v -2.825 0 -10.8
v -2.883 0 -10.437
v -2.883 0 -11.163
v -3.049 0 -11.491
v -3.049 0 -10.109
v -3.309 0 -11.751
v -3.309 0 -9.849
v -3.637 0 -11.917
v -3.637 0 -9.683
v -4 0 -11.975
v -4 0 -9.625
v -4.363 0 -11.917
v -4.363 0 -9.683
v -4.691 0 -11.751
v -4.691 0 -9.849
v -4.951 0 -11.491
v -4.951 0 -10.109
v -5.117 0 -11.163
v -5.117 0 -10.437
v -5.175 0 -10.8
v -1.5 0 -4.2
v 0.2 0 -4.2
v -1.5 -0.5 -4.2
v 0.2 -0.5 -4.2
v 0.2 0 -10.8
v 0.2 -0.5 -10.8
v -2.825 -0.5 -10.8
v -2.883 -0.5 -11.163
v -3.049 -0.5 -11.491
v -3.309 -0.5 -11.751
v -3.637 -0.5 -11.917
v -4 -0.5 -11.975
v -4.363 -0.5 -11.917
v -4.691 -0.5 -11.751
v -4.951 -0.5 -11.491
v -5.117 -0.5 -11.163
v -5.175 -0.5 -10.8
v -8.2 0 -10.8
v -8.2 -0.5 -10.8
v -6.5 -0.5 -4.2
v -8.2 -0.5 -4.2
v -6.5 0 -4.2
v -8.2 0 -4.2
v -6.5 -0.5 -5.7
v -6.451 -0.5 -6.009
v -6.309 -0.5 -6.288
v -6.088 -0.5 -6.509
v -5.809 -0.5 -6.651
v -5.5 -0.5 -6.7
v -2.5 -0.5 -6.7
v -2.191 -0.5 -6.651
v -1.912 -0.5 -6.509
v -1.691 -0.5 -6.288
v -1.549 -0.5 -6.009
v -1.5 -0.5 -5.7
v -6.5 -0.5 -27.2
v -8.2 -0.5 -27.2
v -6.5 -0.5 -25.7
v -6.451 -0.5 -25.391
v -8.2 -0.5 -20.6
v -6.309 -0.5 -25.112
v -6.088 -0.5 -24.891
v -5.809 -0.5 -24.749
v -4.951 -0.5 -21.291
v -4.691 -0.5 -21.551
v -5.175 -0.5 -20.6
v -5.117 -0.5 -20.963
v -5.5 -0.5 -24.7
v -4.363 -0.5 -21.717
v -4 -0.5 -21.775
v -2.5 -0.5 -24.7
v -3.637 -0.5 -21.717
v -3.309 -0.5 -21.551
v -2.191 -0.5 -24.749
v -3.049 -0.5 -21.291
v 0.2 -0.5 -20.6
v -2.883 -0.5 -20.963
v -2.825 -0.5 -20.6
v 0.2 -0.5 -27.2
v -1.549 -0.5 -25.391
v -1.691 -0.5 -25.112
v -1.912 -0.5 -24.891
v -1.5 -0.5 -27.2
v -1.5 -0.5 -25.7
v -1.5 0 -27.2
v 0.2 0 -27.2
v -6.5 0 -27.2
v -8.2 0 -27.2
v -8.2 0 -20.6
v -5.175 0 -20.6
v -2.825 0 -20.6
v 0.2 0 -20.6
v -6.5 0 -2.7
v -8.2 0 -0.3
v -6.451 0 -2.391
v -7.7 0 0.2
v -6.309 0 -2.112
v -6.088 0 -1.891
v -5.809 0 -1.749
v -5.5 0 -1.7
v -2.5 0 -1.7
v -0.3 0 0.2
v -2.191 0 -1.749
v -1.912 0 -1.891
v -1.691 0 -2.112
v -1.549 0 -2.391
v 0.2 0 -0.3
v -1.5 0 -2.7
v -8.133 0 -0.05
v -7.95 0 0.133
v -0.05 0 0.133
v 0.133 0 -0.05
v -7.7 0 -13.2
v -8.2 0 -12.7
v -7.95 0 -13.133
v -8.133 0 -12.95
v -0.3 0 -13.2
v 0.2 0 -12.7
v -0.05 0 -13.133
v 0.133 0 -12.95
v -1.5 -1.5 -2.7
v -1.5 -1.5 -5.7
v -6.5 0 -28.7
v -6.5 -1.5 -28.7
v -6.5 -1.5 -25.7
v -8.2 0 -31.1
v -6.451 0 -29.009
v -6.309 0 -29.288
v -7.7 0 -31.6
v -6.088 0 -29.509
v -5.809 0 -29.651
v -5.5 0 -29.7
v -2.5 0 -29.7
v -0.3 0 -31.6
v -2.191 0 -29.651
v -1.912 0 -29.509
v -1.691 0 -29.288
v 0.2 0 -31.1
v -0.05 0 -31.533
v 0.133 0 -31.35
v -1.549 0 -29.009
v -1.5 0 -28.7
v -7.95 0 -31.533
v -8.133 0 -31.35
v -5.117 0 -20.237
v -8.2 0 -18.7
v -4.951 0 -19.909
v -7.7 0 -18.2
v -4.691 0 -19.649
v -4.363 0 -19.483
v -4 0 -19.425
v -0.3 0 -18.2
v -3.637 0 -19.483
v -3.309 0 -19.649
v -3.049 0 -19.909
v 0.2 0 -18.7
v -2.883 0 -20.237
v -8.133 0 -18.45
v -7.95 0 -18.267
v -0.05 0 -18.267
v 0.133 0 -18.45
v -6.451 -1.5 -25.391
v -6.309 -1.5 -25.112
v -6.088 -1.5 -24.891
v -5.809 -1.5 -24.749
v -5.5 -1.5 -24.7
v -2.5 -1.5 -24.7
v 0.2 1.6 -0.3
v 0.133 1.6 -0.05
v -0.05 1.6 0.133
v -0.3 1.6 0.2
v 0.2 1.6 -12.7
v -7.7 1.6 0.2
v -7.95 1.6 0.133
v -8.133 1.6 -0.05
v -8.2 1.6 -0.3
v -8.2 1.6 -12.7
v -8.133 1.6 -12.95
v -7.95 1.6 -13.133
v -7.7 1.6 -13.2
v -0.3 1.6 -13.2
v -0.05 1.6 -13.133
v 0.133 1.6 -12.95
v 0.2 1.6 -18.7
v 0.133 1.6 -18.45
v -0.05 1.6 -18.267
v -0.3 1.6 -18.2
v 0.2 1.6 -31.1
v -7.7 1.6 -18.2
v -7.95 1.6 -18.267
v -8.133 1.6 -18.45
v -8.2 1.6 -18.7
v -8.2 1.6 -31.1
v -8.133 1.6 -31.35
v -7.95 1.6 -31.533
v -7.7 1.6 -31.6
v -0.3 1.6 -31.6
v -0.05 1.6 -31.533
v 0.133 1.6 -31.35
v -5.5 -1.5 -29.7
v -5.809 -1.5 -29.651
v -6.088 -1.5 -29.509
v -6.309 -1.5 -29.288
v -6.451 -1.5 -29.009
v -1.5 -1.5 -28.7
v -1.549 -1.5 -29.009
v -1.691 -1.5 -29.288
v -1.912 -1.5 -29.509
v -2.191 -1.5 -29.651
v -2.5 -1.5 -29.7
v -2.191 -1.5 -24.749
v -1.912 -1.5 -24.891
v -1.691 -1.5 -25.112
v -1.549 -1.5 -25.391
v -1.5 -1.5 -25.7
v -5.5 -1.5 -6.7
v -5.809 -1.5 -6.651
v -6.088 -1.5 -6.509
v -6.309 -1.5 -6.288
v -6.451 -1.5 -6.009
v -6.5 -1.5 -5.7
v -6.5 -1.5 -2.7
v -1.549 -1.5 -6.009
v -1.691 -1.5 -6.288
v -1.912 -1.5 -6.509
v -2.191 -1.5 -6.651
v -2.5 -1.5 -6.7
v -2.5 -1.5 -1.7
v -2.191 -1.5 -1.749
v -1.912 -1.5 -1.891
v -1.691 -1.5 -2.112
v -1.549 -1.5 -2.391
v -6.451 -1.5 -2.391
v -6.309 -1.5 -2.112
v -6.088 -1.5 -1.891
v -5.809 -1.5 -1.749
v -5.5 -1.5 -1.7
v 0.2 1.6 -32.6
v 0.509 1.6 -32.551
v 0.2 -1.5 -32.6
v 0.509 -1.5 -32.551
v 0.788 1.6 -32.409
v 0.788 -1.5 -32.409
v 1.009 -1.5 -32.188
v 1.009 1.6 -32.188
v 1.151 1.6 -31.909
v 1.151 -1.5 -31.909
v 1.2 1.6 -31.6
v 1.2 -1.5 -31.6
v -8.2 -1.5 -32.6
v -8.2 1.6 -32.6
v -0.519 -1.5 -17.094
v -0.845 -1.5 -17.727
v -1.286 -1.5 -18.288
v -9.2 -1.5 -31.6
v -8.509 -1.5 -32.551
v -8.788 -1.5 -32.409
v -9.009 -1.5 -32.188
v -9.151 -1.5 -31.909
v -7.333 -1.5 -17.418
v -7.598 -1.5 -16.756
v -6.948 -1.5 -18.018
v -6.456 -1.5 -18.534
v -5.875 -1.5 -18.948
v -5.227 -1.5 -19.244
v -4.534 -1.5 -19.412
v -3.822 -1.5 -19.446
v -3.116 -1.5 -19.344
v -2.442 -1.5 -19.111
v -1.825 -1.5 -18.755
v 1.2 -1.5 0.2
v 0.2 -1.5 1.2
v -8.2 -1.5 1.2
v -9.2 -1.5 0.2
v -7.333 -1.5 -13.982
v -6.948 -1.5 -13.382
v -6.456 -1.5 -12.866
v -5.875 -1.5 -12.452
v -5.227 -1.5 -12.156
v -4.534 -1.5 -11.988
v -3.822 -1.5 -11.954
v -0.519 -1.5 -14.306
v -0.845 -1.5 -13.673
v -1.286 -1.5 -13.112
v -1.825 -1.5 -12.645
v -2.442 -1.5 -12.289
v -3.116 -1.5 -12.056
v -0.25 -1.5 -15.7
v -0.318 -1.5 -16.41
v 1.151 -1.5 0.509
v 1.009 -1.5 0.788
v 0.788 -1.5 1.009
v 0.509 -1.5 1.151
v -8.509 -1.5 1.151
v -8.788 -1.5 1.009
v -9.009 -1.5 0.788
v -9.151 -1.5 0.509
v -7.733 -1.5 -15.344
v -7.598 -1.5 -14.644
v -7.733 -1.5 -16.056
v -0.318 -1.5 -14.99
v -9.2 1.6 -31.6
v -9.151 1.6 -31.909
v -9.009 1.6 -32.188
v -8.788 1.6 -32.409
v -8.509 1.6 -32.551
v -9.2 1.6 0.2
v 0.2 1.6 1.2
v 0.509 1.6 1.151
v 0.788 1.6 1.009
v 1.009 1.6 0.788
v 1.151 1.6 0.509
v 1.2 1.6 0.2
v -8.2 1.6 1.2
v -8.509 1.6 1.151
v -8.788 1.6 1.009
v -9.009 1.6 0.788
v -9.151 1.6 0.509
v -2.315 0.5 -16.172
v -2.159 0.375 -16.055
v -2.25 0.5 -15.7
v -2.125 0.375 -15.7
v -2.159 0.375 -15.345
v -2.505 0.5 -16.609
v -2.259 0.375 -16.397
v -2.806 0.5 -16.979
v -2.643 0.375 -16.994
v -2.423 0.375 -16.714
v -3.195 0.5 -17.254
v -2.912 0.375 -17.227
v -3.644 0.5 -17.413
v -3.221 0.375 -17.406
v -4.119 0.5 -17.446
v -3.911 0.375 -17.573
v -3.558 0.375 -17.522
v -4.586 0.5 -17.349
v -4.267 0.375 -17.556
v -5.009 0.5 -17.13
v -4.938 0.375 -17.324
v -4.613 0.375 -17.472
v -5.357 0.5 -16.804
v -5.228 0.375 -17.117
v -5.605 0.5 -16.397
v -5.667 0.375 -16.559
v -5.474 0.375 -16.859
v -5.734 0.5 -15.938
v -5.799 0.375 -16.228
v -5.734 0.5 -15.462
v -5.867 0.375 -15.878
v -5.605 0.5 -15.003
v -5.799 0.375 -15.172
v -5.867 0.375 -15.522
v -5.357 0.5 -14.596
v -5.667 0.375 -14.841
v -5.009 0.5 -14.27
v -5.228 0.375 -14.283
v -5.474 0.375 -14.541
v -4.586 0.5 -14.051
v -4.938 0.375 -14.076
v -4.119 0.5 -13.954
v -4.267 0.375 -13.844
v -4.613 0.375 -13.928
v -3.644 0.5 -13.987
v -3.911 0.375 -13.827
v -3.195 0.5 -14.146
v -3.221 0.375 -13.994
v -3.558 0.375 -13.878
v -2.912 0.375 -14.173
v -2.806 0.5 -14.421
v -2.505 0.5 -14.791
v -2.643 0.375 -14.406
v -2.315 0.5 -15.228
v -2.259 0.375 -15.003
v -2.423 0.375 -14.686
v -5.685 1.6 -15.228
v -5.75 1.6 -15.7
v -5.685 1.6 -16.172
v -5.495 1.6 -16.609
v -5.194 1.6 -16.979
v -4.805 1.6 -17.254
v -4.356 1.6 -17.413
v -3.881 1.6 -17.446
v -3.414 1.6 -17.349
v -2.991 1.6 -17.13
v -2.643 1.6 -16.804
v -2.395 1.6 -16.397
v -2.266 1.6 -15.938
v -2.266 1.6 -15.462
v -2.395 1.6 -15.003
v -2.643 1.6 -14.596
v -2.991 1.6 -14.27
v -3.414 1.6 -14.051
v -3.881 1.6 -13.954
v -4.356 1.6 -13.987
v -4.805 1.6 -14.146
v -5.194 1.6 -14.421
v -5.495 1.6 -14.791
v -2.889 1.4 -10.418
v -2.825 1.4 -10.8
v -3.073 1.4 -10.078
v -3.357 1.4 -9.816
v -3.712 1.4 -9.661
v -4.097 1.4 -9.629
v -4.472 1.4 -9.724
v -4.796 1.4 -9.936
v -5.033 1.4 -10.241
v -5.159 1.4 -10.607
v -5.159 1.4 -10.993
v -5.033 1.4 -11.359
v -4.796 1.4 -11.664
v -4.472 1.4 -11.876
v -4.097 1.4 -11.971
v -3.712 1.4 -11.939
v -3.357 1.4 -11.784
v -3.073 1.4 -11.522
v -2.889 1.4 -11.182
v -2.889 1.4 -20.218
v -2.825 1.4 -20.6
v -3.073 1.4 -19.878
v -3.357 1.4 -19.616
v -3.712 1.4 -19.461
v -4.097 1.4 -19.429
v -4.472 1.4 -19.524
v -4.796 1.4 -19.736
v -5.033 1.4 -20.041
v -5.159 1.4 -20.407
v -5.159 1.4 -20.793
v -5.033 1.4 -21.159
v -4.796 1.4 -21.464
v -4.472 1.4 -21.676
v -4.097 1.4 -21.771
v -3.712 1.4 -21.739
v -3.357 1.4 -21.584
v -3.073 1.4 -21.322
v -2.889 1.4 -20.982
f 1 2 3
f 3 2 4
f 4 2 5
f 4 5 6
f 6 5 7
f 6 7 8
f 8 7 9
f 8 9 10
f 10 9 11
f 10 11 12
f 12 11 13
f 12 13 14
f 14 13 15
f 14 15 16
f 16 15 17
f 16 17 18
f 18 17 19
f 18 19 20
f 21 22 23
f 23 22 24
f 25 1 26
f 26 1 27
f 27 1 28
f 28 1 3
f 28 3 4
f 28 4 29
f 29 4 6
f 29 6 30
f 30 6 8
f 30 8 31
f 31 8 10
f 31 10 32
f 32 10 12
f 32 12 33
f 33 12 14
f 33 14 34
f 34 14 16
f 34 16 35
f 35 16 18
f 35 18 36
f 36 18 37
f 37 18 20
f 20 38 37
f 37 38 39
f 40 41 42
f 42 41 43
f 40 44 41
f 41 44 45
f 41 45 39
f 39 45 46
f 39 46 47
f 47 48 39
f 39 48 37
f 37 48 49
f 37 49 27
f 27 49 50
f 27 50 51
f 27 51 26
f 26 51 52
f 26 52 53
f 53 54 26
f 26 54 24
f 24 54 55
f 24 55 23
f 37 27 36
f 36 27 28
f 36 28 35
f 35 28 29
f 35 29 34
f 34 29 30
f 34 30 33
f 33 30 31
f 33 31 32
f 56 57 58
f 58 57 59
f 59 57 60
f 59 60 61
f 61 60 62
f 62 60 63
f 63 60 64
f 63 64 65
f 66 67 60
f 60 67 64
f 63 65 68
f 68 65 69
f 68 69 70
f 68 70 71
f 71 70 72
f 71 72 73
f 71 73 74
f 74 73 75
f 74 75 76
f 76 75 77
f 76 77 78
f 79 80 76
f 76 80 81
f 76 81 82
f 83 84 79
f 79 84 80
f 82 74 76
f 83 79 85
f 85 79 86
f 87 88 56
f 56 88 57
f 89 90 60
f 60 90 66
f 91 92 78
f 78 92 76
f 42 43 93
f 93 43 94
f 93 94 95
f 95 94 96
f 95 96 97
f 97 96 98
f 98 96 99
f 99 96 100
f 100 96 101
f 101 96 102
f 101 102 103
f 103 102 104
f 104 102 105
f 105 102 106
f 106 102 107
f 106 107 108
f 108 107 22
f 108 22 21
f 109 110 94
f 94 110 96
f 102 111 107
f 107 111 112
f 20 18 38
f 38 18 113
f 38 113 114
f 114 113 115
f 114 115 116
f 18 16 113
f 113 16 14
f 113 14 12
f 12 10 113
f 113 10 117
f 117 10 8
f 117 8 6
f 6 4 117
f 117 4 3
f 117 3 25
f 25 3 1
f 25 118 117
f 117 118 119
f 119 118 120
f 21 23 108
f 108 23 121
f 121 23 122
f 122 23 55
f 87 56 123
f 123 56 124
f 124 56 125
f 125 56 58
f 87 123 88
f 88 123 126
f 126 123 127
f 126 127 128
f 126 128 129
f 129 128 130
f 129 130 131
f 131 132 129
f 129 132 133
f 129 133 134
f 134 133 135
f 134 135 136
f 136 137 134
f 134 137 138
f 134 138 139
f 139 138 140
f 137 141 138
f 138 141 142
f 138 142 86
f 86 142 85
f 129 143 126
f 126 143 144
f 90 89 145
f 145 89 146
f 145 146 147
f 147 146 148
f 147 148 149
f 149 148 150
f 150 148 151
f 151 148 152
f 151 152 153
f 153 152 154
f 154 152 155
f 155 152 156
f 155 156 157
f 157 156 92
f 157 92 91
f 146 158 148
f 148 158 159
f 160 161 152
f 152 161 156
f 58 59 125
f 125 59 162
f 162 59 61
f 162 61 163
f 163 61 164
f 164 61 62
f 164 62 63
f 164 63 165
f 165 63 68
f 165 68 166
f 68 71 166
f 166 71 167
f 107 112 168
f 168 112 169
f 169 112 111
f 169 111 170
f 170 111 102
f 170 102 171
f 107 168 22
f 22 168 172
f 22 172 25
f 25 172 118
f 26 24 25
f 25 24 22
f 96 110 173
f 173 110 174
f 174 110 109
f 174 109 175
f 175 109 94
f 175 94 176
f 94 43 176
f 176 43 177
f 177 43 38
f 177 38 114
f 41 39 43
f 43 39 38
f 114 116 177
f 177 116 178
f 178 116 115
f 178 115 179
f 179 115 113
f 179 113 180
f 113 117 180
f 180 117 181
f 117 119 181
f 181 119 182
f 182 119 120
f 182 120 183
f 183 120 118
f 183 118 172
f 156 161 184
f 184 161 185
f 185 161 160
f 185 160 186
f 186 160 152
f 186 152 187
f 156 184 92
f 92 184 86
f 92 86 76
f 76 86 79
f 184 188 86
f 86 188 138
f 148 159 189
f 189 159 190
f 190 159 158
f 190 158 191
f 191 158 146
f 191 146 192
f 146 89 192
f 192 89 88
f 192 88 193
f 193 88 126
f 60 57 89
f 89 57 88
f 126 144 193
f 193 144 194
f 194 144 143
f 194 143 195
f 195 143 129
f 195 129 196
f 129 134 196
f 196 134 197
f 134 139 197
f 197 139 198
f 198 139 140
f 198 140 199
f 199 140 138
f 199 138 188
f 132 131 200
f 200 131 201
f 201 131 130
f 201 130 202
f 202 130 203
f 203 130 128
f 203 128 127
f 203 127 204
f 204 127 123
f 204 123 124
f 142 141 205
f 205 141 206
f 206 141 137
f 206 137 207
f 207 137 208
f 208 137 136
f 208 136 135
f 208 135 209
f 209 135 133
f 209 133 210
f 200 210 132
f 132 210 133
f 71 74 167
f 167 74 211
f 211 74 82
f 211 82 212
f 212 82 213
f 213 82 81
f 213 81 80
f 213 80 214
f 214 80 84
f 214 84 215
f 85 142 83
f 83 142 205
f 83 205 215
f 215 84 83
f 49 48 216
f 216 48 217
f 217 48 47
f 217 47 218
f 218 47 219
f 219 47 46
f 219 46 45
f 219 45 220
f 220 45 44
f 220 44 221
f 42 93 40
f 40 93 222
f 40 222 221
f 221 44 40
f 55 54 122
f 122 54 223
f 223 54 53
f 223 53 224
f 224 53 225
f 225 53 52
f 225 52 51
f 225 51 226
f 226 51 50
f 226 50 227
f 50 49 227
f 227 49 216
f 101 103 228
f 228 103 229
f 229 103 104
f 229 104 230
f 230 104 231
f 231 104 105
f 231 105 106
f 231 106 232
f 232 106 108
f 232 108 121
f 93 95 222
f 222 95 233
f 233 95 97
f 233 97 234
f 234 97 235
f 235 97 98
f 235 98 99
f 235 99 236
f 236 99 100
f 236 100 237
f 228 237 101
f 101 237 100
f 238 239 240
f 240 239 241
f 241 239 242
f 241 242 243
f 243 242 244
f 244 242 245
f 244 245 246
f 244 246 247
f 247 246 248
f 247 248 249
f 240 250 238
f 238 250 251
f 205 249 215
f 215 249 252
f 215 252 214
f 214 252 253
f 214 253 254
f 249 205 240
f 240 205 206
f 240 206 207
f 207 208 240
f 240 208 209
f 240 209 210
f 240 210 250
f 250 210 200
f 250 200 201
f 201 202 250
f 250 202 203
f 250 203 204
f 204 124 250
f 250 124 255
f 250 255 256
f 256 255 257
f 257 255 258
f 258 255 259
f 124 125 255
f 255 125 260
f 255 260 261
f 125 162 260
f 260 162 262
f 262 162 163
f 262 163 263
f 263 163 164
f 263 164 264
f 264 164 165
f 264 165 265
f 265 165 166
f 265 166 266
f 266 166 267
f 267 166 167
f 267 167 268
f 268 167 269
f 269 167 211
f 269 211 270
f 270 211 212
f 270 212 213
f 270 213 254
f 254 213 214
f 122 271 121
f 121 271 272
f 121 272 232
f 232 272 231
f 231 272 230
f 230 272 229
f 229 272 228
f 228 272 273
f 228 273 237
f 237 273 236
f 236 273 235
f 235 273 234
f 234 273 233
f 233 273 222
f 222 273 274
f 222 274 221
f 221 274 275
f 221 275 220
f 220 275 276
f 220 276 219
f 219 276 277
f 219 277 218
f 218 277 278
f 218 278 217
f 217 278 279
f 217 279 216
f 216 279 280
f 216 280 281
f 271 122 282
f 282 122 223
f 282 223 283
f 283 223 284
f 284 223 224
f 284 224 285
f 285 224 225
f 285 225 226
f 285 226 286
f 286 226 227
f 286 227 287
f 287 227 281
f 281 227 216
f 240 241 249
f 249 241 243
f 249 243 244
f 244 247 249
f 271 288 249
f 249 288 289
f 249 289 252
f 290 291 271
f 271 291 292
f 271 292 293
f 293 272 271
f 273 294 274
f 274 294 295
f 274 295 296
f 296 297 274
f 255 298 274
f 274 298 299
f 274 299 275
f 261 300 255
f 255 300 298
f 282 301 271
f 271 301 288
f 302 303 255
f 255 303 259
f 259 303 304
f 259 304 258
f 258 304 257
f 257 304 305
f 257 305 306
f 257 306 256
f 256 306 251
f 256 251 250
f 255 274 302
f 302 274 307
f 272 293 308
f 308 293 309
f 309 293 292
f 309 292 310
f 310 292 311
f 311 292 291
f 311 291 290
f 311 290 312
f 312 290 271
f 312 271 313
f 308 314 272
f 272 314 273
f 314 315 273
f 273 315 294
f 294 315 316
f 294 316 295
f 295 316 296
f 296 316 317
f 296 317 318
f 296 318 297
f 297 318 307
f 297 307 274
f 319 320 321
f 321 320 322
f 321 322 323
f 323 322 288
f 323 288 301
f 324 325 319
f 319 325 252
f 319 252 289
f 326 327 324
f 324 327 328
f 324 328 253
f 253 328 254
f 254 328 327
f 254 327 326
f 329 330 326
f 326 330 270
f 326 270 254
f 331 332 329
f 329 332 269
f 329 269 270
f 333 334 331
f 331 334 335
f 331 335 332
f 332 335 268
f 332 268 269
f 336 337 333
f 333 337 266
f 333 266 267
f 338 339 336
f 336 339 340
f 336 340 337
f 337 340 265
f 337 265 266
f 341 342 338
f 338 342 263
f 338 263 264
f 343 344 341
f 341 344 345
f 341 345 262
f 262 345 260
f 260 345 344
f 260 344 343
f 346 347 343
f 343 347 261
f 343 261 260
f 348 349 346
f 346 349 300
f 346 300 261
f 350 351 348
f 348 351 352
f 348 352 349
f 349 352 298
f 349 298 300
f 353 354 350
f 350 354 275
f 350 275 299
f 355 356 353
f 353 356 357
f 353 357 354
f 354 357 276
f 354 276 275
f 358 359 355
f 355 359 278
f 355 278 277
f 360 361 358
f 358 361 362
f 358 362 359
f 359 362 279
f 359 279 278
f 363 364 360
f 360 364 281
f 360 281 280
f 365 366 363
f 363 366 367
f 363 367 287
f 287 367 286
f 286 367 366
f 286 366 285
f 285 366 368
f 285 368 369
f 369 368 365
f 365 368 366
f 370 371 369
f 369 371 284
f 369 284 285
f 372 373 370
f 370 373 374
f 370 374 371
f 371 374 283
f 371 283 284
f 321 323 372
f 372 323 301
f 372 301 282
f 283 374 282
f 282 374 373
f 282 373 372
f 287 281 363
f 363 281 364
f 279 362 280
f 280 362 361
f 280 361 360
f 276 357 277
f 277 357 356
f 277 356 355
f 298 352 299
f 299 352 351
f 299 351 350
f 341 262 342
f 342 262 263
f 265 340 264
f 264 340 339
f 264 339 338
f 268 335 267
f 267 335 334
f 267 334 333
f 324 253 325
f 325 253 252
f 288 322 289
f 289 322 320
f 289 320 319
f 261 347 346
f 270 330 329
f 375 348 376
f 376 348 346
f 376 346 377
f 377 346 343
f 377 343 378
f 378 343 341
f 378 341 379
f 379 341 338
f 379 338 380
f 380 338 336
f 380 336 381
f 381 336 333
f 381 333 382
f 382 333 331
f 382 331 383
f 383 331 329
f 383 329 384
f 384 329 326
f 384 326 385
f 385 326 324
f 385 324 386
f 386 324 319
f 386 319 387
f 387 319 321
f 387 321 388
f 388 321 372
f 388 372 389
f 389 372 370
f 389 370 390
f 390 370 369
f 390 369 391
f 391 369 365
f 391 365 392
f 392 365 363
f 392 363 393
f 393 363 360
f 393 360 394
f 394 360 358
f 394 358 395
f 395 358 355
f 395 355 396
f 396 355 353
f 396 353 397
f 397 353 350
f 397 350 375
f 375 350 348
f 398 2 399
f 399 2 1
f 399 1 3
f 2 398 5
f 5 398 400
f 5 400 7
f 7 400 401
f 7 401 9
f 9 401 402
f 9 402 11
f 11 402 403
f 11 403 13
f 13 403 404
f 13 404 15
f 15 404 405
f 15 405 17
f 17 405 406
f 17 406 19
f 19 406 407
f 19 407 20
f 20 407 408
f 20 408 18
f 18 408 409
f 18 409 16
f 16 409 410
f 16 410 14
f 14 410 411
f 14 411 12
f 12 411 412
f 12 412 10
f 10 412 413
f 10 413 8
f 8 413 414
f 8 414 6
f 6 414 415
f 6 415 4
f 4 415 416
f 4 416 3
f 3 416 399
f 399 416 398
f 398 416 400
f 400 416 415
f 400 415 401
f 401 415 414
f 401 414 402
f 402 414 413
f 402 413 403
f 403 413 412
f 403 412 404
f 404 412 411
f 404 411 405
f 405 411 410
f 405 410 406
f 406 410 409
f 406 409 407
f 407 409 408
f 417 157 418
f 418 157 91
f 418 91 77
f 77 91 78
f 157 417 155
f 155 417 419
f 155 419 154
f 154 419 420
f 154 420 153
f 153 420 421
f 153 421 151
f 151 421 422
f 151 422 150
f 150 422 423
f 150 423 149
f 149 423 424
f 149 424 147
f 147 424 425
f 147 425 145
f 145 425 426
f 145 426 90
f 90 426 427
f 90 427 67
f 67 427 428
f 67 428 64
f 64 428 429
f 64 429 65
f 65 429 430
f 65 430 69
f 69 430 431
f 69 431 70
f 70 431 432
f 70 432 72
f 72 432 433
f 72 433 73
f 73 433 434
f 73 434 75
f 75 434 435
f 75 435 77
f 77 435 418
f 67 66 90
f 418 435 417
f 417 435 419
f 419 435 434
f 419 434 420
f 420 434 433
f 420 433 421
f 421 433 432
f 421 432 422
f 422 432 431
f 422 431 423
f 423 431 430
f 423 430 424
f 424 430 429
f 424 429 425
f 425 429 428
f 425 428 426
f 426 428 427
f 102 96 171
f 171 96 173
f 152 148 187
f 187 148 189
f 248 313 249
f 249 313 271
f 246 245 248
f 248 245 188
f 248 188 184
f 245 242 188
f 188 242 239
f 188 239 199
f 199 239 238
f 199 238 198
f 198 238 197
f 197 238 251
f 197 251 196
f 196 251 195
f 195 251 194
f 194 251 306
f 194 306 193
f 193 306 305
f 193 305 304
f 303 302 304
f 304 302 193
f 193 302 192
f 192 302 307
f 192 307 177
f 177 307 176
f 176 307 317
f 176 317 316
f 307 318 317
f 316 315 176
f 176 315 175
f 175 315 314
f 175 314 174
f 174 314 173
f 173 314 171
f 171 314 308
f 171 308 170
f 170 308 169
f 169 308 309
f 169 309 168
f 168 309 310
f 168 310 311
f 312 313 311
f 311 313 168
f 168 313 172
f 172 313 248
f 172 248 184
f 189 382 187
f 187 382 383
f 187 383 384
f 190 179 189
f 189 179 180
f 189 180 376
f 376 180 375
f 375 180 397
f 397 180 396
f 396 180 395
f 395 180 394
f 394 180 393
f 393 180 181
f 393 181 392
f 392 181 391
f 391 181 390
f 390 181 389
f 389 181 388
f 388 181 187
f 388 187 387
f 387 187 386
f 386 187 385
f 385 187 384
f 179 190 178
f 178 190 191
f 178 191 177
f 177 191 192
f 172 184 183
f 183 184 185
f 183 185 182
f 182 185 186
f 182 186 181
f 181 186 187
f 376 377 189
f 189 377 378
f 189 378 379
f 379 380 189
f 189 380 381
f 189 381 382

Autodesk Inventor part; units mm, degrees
ref_plane "YZ Plane" through (0, 0, 0) normal (1, 0, 0) x (0, 1, 0)
ref_plane "XZ Plane" through (0, 0, 0) normal (0, 1, 0) x (-1, 0, 0)
ref_plane "XY Plane" through (0, 0, 0) normal (0, 0, 1) x (1, 0, 0)
sketch "Sketch1" plane through (0, 0, 0) normal (0, 1, 0) x (-1, 0, 0)
  line L0 (0, 0) -> (8, 0)
  line L1 (8, 0) -> (8, -13)
  line L2 (8, -13) -> (0, -13)
  line L3 (0, -13) -> (0, 0)
  line L4 (8.2, -13.2) -> (8.2, 0.2)
  line L5 (8.2, 0.2) -> (-0.2, 0.2)
  line L6 (-0.2, 0.2) -> (-0.2, -13.2)
  line L7 (-0.2, -13.2) -> (8.2, -13.2)
  line L8 (0, -18.4) -> (8, -18.4)
  line L9 (8, -18.4) -> (8, -31.4)
  line L10 (8, -31.4) -> (0, -31.4)
  line L11 (0, -31.4) -> (0, -18.4)
  line L12 (8.2, -31.6) -> (8.2, -18.2)
  line L13 (8.2, -18.2) -> (-0.2, -18.2)
  line L14 (-0.2, -18.2) -> (-0.2, -31.6)
  line L15 (-0.2, -31.6) -> (8.2, -31.6)
  line L16 (9.2, 1.2) -> (-1.2, 1.2)
  line L17 (-1.2, 1.2) -> (-1.2, -32.6)
  line L18 (-1.2, -32.6) -> (9.2, -32.6)
  line L19 (9.2, -32.6) -> (9.2, 1.2)
  circle A0 centre (4, -15.7) radius 1.75
  line L20 (4, -18.2) -> (4, -13.2)
  dimension "d0" = 8
  dimension "d1" = 13
  dimension "d2" = 0.2
  dimension "d3" = 0.2
  dimension "d4" = 3.5
  dimension "d5" = 2.5
  dimension "d6" = 2.5
  dimension "d7" = 1
  dimension "d8" = 1
  dimension "d9" = 1
  dimension "d10" = 1
extrude "Extrusion1" add sketch "Sketch1" along normal blind 1.6 contours L19 L18 L17 L16
sketch "Sketch2" plane through (0, 0, 0) normal (0, -1, 0) x (1, 0, 0)
  line L0 (-9.2, 1.2) -> (1.2, 1.2) projected
  line L1 (1.2, -32.6) -> (-9.2, -32.6) projected
  line L2 (1.2, 1.2) -> (-9.2, 1.2)
  line L3 (-9.2, 1.2) -> (-9.2, -32.6)
  line L4 (-9.2, -32.6) -> (1.2, -32.6)
  line L5 (1.2, -32.6) -> (1.2, 1.2)
  circle A0 centre (-4, -15.7) radius 1.75 projected
  circle A1 centre (-4, -15.7) radius 1.75
  line L6 (-1.5, -24.7) -> (-6.5, -24.7)
  line L7 (-6.5, -24.7) -> (-6.5, -29.7)
  line L8 (-6.5, -29.7) -> (-1.5, -29.7)
  line L9 (-1.5, -29.7) -> (-1.5, -24.7)
  line L10 (-1.5, -1.7) -> (-6.5, -1.7)
  line L11 (-6.5, -1.7) -> (-6.5, -6.7)
  line L12 (-6.5, -6.7) -> (-1.5, -6.7)
  line L13 (-1.5, -6.7) -> (-1.5, -1.7)
  line L14 (-8.2, -18.2) -> (-8.2, -31.6) projected
  line L15 (-8.2, -31.6) -> (0.2, -31.6) projected
  line L16 (0.2, -18.2) -> (-8.2, -18.2) projected
  line L17 (-4, -18.2) -> (-4, -23.5281)
  line L18 (-8.2, -13.2) -> (0.2, -13.2) projected
  line L19 (0.2, 0.2) -> (-8.2, 0.2) projected
  point P0 (0, 0)
  dimension "d14" = 5
  dimension "d15" = 1.9
  dimension "d16" = 5
  dimension "d39" = 1.9
extrude "Extrusion2" add sketch "Sketch2" along normal blind 1.5
sketch "Sketch3" plane through (0, 0, 0) normal (0, 1, 0) x (1, 0, 0)
  circle A0 centre (-4, 10.8) radius 1.175
  circle A1 centre (-4, 20.6) radius 1.175
  line L0 (0.2, 18.2) -> (-8.2, 18.2) projected
  circle A2 centre (-4, 15.7) radius 1.75 projected
  line L1 (0.2, -0.2) -> (-8.2, -0.2) projected
  line L2 (-6.5, 24.7) -> (-1.5, 24.7) projected
  line L3 (-6.5, 1.7) -> (-1.5, 1.7) projected
  line L4 (-1.5, 6.7) -> (-6.5, 6.7) projected
  point P0 (0, 0)
  dimension "d22" = 2.35
  dimension "d37" = 4.1
  dimension "d40" = 4.1
extrude "Extrusion3" add sketch "Sketch3" along normal blind 1.4 contours A0 | A1
chamfer "Chamfer1" distance 2 angle 45 1 edges at (-5.75, -1.5, -15.7)
fillet "Fillet1" radius 1 4 edges at (-9.2, 0.05, 1.2) (1.2, 0.05, 1.2) (-9.2, 0.05, -32.6) (1.2, 0.05, -32.6)
fillet "Fillet2" radius 1 8 edges at (-6.5, -0.75, -1.7) (-1.5, -0.75, -1.7) (-1.5, -0.75, -6.7) (-6.5, -0.75, -6.7) (-6.5, -0.75, -24.7) (-1.5, -0.75, -24.7) (-1.5, -0.75, -29.7) (-6.5, -0.75, -29.7)
fillet "Fillet3" radius 0.5 8 edges at (0.2, 0.8, -31.6) (-8.2, 0.8, -31.6) (-8.2, 0.8, -18.2) (0.2, 0.8, -18.2) (0.2, 0.8, -13.2) (-8.2, 0.8, -13.2) (-8.2, 0.8, 0.2) (0.2, 0.8, 0.2)
sketch "Sketch4" plane through (0, 0, 0) normal (0, 1, 0) x (1, 0, 0)
  line L0 (-8.2, 27.2) -> (0.2, 27.2)
  line L1 (0.2, 27.2) -> (0.2, 20.6)
  line L2 (0.2, 20.6) -> (-8.2, 20.6)
  line L3 (-8.2, 20.6) -> (-8.2, 27.2)
  line L4 (-8.2, 4.2) -> (0.2, 4.2)
  line L5 (0.2, 4.2) -> (0.2, 10.8)
  line L6 (0.2, 10.8) -> (-8.2, 10.8)
  line L7 (-8.2, 10.8) -> (-8.2, 4.2)
  line L8 (-8.2, 18.7) -> (-8.2, 31.1) projected
  line L9 (0.2, 31.1) -> (0.2, 18.7) projected
  line L10 (-5.5, 24.7) -> (-2.5, 24.7) projected
  circle A0 centre (-4, 20.6) radius 1.175 projected
  circle A1 centre (-4, 10.8) radius 1.175 projected
  line L11 (-5.5, 1.7) -> (-2.5, 1.7) projected
  line L12 (-1.5, 25.7) -> (-1.5, 28.7) projected
  line L13 (-1.5, 2.7) -> (-1.5, 5.7) projected
  point P0 (0, 0)
  point P1 (-5.175, 10.8)
  point P2 (-2.825, 10.8)
  point P3 (-5.175, 20.6)
  point P4 (-2.825, 20.6)
  point P5 (-1.5, 27.2)
  point P6 (-1.5, 4.2)
extrude "Extrusion4" cut sketch "Sketch4" against normal blind 0.5 contours L0 L1 L2 A0 L3 | L7 L6 A1 L5 L4 | A1 L6 | L6 A1
equation "\"d3\" = d2"
equation "\"d6\" = d5"
equation "\"d8\" = d7"
equation "\"d10\" = d9"
equation "\"d39\" = d15"
equation "\"d40\" = d37"
properties part number "LineSensorPlate"
